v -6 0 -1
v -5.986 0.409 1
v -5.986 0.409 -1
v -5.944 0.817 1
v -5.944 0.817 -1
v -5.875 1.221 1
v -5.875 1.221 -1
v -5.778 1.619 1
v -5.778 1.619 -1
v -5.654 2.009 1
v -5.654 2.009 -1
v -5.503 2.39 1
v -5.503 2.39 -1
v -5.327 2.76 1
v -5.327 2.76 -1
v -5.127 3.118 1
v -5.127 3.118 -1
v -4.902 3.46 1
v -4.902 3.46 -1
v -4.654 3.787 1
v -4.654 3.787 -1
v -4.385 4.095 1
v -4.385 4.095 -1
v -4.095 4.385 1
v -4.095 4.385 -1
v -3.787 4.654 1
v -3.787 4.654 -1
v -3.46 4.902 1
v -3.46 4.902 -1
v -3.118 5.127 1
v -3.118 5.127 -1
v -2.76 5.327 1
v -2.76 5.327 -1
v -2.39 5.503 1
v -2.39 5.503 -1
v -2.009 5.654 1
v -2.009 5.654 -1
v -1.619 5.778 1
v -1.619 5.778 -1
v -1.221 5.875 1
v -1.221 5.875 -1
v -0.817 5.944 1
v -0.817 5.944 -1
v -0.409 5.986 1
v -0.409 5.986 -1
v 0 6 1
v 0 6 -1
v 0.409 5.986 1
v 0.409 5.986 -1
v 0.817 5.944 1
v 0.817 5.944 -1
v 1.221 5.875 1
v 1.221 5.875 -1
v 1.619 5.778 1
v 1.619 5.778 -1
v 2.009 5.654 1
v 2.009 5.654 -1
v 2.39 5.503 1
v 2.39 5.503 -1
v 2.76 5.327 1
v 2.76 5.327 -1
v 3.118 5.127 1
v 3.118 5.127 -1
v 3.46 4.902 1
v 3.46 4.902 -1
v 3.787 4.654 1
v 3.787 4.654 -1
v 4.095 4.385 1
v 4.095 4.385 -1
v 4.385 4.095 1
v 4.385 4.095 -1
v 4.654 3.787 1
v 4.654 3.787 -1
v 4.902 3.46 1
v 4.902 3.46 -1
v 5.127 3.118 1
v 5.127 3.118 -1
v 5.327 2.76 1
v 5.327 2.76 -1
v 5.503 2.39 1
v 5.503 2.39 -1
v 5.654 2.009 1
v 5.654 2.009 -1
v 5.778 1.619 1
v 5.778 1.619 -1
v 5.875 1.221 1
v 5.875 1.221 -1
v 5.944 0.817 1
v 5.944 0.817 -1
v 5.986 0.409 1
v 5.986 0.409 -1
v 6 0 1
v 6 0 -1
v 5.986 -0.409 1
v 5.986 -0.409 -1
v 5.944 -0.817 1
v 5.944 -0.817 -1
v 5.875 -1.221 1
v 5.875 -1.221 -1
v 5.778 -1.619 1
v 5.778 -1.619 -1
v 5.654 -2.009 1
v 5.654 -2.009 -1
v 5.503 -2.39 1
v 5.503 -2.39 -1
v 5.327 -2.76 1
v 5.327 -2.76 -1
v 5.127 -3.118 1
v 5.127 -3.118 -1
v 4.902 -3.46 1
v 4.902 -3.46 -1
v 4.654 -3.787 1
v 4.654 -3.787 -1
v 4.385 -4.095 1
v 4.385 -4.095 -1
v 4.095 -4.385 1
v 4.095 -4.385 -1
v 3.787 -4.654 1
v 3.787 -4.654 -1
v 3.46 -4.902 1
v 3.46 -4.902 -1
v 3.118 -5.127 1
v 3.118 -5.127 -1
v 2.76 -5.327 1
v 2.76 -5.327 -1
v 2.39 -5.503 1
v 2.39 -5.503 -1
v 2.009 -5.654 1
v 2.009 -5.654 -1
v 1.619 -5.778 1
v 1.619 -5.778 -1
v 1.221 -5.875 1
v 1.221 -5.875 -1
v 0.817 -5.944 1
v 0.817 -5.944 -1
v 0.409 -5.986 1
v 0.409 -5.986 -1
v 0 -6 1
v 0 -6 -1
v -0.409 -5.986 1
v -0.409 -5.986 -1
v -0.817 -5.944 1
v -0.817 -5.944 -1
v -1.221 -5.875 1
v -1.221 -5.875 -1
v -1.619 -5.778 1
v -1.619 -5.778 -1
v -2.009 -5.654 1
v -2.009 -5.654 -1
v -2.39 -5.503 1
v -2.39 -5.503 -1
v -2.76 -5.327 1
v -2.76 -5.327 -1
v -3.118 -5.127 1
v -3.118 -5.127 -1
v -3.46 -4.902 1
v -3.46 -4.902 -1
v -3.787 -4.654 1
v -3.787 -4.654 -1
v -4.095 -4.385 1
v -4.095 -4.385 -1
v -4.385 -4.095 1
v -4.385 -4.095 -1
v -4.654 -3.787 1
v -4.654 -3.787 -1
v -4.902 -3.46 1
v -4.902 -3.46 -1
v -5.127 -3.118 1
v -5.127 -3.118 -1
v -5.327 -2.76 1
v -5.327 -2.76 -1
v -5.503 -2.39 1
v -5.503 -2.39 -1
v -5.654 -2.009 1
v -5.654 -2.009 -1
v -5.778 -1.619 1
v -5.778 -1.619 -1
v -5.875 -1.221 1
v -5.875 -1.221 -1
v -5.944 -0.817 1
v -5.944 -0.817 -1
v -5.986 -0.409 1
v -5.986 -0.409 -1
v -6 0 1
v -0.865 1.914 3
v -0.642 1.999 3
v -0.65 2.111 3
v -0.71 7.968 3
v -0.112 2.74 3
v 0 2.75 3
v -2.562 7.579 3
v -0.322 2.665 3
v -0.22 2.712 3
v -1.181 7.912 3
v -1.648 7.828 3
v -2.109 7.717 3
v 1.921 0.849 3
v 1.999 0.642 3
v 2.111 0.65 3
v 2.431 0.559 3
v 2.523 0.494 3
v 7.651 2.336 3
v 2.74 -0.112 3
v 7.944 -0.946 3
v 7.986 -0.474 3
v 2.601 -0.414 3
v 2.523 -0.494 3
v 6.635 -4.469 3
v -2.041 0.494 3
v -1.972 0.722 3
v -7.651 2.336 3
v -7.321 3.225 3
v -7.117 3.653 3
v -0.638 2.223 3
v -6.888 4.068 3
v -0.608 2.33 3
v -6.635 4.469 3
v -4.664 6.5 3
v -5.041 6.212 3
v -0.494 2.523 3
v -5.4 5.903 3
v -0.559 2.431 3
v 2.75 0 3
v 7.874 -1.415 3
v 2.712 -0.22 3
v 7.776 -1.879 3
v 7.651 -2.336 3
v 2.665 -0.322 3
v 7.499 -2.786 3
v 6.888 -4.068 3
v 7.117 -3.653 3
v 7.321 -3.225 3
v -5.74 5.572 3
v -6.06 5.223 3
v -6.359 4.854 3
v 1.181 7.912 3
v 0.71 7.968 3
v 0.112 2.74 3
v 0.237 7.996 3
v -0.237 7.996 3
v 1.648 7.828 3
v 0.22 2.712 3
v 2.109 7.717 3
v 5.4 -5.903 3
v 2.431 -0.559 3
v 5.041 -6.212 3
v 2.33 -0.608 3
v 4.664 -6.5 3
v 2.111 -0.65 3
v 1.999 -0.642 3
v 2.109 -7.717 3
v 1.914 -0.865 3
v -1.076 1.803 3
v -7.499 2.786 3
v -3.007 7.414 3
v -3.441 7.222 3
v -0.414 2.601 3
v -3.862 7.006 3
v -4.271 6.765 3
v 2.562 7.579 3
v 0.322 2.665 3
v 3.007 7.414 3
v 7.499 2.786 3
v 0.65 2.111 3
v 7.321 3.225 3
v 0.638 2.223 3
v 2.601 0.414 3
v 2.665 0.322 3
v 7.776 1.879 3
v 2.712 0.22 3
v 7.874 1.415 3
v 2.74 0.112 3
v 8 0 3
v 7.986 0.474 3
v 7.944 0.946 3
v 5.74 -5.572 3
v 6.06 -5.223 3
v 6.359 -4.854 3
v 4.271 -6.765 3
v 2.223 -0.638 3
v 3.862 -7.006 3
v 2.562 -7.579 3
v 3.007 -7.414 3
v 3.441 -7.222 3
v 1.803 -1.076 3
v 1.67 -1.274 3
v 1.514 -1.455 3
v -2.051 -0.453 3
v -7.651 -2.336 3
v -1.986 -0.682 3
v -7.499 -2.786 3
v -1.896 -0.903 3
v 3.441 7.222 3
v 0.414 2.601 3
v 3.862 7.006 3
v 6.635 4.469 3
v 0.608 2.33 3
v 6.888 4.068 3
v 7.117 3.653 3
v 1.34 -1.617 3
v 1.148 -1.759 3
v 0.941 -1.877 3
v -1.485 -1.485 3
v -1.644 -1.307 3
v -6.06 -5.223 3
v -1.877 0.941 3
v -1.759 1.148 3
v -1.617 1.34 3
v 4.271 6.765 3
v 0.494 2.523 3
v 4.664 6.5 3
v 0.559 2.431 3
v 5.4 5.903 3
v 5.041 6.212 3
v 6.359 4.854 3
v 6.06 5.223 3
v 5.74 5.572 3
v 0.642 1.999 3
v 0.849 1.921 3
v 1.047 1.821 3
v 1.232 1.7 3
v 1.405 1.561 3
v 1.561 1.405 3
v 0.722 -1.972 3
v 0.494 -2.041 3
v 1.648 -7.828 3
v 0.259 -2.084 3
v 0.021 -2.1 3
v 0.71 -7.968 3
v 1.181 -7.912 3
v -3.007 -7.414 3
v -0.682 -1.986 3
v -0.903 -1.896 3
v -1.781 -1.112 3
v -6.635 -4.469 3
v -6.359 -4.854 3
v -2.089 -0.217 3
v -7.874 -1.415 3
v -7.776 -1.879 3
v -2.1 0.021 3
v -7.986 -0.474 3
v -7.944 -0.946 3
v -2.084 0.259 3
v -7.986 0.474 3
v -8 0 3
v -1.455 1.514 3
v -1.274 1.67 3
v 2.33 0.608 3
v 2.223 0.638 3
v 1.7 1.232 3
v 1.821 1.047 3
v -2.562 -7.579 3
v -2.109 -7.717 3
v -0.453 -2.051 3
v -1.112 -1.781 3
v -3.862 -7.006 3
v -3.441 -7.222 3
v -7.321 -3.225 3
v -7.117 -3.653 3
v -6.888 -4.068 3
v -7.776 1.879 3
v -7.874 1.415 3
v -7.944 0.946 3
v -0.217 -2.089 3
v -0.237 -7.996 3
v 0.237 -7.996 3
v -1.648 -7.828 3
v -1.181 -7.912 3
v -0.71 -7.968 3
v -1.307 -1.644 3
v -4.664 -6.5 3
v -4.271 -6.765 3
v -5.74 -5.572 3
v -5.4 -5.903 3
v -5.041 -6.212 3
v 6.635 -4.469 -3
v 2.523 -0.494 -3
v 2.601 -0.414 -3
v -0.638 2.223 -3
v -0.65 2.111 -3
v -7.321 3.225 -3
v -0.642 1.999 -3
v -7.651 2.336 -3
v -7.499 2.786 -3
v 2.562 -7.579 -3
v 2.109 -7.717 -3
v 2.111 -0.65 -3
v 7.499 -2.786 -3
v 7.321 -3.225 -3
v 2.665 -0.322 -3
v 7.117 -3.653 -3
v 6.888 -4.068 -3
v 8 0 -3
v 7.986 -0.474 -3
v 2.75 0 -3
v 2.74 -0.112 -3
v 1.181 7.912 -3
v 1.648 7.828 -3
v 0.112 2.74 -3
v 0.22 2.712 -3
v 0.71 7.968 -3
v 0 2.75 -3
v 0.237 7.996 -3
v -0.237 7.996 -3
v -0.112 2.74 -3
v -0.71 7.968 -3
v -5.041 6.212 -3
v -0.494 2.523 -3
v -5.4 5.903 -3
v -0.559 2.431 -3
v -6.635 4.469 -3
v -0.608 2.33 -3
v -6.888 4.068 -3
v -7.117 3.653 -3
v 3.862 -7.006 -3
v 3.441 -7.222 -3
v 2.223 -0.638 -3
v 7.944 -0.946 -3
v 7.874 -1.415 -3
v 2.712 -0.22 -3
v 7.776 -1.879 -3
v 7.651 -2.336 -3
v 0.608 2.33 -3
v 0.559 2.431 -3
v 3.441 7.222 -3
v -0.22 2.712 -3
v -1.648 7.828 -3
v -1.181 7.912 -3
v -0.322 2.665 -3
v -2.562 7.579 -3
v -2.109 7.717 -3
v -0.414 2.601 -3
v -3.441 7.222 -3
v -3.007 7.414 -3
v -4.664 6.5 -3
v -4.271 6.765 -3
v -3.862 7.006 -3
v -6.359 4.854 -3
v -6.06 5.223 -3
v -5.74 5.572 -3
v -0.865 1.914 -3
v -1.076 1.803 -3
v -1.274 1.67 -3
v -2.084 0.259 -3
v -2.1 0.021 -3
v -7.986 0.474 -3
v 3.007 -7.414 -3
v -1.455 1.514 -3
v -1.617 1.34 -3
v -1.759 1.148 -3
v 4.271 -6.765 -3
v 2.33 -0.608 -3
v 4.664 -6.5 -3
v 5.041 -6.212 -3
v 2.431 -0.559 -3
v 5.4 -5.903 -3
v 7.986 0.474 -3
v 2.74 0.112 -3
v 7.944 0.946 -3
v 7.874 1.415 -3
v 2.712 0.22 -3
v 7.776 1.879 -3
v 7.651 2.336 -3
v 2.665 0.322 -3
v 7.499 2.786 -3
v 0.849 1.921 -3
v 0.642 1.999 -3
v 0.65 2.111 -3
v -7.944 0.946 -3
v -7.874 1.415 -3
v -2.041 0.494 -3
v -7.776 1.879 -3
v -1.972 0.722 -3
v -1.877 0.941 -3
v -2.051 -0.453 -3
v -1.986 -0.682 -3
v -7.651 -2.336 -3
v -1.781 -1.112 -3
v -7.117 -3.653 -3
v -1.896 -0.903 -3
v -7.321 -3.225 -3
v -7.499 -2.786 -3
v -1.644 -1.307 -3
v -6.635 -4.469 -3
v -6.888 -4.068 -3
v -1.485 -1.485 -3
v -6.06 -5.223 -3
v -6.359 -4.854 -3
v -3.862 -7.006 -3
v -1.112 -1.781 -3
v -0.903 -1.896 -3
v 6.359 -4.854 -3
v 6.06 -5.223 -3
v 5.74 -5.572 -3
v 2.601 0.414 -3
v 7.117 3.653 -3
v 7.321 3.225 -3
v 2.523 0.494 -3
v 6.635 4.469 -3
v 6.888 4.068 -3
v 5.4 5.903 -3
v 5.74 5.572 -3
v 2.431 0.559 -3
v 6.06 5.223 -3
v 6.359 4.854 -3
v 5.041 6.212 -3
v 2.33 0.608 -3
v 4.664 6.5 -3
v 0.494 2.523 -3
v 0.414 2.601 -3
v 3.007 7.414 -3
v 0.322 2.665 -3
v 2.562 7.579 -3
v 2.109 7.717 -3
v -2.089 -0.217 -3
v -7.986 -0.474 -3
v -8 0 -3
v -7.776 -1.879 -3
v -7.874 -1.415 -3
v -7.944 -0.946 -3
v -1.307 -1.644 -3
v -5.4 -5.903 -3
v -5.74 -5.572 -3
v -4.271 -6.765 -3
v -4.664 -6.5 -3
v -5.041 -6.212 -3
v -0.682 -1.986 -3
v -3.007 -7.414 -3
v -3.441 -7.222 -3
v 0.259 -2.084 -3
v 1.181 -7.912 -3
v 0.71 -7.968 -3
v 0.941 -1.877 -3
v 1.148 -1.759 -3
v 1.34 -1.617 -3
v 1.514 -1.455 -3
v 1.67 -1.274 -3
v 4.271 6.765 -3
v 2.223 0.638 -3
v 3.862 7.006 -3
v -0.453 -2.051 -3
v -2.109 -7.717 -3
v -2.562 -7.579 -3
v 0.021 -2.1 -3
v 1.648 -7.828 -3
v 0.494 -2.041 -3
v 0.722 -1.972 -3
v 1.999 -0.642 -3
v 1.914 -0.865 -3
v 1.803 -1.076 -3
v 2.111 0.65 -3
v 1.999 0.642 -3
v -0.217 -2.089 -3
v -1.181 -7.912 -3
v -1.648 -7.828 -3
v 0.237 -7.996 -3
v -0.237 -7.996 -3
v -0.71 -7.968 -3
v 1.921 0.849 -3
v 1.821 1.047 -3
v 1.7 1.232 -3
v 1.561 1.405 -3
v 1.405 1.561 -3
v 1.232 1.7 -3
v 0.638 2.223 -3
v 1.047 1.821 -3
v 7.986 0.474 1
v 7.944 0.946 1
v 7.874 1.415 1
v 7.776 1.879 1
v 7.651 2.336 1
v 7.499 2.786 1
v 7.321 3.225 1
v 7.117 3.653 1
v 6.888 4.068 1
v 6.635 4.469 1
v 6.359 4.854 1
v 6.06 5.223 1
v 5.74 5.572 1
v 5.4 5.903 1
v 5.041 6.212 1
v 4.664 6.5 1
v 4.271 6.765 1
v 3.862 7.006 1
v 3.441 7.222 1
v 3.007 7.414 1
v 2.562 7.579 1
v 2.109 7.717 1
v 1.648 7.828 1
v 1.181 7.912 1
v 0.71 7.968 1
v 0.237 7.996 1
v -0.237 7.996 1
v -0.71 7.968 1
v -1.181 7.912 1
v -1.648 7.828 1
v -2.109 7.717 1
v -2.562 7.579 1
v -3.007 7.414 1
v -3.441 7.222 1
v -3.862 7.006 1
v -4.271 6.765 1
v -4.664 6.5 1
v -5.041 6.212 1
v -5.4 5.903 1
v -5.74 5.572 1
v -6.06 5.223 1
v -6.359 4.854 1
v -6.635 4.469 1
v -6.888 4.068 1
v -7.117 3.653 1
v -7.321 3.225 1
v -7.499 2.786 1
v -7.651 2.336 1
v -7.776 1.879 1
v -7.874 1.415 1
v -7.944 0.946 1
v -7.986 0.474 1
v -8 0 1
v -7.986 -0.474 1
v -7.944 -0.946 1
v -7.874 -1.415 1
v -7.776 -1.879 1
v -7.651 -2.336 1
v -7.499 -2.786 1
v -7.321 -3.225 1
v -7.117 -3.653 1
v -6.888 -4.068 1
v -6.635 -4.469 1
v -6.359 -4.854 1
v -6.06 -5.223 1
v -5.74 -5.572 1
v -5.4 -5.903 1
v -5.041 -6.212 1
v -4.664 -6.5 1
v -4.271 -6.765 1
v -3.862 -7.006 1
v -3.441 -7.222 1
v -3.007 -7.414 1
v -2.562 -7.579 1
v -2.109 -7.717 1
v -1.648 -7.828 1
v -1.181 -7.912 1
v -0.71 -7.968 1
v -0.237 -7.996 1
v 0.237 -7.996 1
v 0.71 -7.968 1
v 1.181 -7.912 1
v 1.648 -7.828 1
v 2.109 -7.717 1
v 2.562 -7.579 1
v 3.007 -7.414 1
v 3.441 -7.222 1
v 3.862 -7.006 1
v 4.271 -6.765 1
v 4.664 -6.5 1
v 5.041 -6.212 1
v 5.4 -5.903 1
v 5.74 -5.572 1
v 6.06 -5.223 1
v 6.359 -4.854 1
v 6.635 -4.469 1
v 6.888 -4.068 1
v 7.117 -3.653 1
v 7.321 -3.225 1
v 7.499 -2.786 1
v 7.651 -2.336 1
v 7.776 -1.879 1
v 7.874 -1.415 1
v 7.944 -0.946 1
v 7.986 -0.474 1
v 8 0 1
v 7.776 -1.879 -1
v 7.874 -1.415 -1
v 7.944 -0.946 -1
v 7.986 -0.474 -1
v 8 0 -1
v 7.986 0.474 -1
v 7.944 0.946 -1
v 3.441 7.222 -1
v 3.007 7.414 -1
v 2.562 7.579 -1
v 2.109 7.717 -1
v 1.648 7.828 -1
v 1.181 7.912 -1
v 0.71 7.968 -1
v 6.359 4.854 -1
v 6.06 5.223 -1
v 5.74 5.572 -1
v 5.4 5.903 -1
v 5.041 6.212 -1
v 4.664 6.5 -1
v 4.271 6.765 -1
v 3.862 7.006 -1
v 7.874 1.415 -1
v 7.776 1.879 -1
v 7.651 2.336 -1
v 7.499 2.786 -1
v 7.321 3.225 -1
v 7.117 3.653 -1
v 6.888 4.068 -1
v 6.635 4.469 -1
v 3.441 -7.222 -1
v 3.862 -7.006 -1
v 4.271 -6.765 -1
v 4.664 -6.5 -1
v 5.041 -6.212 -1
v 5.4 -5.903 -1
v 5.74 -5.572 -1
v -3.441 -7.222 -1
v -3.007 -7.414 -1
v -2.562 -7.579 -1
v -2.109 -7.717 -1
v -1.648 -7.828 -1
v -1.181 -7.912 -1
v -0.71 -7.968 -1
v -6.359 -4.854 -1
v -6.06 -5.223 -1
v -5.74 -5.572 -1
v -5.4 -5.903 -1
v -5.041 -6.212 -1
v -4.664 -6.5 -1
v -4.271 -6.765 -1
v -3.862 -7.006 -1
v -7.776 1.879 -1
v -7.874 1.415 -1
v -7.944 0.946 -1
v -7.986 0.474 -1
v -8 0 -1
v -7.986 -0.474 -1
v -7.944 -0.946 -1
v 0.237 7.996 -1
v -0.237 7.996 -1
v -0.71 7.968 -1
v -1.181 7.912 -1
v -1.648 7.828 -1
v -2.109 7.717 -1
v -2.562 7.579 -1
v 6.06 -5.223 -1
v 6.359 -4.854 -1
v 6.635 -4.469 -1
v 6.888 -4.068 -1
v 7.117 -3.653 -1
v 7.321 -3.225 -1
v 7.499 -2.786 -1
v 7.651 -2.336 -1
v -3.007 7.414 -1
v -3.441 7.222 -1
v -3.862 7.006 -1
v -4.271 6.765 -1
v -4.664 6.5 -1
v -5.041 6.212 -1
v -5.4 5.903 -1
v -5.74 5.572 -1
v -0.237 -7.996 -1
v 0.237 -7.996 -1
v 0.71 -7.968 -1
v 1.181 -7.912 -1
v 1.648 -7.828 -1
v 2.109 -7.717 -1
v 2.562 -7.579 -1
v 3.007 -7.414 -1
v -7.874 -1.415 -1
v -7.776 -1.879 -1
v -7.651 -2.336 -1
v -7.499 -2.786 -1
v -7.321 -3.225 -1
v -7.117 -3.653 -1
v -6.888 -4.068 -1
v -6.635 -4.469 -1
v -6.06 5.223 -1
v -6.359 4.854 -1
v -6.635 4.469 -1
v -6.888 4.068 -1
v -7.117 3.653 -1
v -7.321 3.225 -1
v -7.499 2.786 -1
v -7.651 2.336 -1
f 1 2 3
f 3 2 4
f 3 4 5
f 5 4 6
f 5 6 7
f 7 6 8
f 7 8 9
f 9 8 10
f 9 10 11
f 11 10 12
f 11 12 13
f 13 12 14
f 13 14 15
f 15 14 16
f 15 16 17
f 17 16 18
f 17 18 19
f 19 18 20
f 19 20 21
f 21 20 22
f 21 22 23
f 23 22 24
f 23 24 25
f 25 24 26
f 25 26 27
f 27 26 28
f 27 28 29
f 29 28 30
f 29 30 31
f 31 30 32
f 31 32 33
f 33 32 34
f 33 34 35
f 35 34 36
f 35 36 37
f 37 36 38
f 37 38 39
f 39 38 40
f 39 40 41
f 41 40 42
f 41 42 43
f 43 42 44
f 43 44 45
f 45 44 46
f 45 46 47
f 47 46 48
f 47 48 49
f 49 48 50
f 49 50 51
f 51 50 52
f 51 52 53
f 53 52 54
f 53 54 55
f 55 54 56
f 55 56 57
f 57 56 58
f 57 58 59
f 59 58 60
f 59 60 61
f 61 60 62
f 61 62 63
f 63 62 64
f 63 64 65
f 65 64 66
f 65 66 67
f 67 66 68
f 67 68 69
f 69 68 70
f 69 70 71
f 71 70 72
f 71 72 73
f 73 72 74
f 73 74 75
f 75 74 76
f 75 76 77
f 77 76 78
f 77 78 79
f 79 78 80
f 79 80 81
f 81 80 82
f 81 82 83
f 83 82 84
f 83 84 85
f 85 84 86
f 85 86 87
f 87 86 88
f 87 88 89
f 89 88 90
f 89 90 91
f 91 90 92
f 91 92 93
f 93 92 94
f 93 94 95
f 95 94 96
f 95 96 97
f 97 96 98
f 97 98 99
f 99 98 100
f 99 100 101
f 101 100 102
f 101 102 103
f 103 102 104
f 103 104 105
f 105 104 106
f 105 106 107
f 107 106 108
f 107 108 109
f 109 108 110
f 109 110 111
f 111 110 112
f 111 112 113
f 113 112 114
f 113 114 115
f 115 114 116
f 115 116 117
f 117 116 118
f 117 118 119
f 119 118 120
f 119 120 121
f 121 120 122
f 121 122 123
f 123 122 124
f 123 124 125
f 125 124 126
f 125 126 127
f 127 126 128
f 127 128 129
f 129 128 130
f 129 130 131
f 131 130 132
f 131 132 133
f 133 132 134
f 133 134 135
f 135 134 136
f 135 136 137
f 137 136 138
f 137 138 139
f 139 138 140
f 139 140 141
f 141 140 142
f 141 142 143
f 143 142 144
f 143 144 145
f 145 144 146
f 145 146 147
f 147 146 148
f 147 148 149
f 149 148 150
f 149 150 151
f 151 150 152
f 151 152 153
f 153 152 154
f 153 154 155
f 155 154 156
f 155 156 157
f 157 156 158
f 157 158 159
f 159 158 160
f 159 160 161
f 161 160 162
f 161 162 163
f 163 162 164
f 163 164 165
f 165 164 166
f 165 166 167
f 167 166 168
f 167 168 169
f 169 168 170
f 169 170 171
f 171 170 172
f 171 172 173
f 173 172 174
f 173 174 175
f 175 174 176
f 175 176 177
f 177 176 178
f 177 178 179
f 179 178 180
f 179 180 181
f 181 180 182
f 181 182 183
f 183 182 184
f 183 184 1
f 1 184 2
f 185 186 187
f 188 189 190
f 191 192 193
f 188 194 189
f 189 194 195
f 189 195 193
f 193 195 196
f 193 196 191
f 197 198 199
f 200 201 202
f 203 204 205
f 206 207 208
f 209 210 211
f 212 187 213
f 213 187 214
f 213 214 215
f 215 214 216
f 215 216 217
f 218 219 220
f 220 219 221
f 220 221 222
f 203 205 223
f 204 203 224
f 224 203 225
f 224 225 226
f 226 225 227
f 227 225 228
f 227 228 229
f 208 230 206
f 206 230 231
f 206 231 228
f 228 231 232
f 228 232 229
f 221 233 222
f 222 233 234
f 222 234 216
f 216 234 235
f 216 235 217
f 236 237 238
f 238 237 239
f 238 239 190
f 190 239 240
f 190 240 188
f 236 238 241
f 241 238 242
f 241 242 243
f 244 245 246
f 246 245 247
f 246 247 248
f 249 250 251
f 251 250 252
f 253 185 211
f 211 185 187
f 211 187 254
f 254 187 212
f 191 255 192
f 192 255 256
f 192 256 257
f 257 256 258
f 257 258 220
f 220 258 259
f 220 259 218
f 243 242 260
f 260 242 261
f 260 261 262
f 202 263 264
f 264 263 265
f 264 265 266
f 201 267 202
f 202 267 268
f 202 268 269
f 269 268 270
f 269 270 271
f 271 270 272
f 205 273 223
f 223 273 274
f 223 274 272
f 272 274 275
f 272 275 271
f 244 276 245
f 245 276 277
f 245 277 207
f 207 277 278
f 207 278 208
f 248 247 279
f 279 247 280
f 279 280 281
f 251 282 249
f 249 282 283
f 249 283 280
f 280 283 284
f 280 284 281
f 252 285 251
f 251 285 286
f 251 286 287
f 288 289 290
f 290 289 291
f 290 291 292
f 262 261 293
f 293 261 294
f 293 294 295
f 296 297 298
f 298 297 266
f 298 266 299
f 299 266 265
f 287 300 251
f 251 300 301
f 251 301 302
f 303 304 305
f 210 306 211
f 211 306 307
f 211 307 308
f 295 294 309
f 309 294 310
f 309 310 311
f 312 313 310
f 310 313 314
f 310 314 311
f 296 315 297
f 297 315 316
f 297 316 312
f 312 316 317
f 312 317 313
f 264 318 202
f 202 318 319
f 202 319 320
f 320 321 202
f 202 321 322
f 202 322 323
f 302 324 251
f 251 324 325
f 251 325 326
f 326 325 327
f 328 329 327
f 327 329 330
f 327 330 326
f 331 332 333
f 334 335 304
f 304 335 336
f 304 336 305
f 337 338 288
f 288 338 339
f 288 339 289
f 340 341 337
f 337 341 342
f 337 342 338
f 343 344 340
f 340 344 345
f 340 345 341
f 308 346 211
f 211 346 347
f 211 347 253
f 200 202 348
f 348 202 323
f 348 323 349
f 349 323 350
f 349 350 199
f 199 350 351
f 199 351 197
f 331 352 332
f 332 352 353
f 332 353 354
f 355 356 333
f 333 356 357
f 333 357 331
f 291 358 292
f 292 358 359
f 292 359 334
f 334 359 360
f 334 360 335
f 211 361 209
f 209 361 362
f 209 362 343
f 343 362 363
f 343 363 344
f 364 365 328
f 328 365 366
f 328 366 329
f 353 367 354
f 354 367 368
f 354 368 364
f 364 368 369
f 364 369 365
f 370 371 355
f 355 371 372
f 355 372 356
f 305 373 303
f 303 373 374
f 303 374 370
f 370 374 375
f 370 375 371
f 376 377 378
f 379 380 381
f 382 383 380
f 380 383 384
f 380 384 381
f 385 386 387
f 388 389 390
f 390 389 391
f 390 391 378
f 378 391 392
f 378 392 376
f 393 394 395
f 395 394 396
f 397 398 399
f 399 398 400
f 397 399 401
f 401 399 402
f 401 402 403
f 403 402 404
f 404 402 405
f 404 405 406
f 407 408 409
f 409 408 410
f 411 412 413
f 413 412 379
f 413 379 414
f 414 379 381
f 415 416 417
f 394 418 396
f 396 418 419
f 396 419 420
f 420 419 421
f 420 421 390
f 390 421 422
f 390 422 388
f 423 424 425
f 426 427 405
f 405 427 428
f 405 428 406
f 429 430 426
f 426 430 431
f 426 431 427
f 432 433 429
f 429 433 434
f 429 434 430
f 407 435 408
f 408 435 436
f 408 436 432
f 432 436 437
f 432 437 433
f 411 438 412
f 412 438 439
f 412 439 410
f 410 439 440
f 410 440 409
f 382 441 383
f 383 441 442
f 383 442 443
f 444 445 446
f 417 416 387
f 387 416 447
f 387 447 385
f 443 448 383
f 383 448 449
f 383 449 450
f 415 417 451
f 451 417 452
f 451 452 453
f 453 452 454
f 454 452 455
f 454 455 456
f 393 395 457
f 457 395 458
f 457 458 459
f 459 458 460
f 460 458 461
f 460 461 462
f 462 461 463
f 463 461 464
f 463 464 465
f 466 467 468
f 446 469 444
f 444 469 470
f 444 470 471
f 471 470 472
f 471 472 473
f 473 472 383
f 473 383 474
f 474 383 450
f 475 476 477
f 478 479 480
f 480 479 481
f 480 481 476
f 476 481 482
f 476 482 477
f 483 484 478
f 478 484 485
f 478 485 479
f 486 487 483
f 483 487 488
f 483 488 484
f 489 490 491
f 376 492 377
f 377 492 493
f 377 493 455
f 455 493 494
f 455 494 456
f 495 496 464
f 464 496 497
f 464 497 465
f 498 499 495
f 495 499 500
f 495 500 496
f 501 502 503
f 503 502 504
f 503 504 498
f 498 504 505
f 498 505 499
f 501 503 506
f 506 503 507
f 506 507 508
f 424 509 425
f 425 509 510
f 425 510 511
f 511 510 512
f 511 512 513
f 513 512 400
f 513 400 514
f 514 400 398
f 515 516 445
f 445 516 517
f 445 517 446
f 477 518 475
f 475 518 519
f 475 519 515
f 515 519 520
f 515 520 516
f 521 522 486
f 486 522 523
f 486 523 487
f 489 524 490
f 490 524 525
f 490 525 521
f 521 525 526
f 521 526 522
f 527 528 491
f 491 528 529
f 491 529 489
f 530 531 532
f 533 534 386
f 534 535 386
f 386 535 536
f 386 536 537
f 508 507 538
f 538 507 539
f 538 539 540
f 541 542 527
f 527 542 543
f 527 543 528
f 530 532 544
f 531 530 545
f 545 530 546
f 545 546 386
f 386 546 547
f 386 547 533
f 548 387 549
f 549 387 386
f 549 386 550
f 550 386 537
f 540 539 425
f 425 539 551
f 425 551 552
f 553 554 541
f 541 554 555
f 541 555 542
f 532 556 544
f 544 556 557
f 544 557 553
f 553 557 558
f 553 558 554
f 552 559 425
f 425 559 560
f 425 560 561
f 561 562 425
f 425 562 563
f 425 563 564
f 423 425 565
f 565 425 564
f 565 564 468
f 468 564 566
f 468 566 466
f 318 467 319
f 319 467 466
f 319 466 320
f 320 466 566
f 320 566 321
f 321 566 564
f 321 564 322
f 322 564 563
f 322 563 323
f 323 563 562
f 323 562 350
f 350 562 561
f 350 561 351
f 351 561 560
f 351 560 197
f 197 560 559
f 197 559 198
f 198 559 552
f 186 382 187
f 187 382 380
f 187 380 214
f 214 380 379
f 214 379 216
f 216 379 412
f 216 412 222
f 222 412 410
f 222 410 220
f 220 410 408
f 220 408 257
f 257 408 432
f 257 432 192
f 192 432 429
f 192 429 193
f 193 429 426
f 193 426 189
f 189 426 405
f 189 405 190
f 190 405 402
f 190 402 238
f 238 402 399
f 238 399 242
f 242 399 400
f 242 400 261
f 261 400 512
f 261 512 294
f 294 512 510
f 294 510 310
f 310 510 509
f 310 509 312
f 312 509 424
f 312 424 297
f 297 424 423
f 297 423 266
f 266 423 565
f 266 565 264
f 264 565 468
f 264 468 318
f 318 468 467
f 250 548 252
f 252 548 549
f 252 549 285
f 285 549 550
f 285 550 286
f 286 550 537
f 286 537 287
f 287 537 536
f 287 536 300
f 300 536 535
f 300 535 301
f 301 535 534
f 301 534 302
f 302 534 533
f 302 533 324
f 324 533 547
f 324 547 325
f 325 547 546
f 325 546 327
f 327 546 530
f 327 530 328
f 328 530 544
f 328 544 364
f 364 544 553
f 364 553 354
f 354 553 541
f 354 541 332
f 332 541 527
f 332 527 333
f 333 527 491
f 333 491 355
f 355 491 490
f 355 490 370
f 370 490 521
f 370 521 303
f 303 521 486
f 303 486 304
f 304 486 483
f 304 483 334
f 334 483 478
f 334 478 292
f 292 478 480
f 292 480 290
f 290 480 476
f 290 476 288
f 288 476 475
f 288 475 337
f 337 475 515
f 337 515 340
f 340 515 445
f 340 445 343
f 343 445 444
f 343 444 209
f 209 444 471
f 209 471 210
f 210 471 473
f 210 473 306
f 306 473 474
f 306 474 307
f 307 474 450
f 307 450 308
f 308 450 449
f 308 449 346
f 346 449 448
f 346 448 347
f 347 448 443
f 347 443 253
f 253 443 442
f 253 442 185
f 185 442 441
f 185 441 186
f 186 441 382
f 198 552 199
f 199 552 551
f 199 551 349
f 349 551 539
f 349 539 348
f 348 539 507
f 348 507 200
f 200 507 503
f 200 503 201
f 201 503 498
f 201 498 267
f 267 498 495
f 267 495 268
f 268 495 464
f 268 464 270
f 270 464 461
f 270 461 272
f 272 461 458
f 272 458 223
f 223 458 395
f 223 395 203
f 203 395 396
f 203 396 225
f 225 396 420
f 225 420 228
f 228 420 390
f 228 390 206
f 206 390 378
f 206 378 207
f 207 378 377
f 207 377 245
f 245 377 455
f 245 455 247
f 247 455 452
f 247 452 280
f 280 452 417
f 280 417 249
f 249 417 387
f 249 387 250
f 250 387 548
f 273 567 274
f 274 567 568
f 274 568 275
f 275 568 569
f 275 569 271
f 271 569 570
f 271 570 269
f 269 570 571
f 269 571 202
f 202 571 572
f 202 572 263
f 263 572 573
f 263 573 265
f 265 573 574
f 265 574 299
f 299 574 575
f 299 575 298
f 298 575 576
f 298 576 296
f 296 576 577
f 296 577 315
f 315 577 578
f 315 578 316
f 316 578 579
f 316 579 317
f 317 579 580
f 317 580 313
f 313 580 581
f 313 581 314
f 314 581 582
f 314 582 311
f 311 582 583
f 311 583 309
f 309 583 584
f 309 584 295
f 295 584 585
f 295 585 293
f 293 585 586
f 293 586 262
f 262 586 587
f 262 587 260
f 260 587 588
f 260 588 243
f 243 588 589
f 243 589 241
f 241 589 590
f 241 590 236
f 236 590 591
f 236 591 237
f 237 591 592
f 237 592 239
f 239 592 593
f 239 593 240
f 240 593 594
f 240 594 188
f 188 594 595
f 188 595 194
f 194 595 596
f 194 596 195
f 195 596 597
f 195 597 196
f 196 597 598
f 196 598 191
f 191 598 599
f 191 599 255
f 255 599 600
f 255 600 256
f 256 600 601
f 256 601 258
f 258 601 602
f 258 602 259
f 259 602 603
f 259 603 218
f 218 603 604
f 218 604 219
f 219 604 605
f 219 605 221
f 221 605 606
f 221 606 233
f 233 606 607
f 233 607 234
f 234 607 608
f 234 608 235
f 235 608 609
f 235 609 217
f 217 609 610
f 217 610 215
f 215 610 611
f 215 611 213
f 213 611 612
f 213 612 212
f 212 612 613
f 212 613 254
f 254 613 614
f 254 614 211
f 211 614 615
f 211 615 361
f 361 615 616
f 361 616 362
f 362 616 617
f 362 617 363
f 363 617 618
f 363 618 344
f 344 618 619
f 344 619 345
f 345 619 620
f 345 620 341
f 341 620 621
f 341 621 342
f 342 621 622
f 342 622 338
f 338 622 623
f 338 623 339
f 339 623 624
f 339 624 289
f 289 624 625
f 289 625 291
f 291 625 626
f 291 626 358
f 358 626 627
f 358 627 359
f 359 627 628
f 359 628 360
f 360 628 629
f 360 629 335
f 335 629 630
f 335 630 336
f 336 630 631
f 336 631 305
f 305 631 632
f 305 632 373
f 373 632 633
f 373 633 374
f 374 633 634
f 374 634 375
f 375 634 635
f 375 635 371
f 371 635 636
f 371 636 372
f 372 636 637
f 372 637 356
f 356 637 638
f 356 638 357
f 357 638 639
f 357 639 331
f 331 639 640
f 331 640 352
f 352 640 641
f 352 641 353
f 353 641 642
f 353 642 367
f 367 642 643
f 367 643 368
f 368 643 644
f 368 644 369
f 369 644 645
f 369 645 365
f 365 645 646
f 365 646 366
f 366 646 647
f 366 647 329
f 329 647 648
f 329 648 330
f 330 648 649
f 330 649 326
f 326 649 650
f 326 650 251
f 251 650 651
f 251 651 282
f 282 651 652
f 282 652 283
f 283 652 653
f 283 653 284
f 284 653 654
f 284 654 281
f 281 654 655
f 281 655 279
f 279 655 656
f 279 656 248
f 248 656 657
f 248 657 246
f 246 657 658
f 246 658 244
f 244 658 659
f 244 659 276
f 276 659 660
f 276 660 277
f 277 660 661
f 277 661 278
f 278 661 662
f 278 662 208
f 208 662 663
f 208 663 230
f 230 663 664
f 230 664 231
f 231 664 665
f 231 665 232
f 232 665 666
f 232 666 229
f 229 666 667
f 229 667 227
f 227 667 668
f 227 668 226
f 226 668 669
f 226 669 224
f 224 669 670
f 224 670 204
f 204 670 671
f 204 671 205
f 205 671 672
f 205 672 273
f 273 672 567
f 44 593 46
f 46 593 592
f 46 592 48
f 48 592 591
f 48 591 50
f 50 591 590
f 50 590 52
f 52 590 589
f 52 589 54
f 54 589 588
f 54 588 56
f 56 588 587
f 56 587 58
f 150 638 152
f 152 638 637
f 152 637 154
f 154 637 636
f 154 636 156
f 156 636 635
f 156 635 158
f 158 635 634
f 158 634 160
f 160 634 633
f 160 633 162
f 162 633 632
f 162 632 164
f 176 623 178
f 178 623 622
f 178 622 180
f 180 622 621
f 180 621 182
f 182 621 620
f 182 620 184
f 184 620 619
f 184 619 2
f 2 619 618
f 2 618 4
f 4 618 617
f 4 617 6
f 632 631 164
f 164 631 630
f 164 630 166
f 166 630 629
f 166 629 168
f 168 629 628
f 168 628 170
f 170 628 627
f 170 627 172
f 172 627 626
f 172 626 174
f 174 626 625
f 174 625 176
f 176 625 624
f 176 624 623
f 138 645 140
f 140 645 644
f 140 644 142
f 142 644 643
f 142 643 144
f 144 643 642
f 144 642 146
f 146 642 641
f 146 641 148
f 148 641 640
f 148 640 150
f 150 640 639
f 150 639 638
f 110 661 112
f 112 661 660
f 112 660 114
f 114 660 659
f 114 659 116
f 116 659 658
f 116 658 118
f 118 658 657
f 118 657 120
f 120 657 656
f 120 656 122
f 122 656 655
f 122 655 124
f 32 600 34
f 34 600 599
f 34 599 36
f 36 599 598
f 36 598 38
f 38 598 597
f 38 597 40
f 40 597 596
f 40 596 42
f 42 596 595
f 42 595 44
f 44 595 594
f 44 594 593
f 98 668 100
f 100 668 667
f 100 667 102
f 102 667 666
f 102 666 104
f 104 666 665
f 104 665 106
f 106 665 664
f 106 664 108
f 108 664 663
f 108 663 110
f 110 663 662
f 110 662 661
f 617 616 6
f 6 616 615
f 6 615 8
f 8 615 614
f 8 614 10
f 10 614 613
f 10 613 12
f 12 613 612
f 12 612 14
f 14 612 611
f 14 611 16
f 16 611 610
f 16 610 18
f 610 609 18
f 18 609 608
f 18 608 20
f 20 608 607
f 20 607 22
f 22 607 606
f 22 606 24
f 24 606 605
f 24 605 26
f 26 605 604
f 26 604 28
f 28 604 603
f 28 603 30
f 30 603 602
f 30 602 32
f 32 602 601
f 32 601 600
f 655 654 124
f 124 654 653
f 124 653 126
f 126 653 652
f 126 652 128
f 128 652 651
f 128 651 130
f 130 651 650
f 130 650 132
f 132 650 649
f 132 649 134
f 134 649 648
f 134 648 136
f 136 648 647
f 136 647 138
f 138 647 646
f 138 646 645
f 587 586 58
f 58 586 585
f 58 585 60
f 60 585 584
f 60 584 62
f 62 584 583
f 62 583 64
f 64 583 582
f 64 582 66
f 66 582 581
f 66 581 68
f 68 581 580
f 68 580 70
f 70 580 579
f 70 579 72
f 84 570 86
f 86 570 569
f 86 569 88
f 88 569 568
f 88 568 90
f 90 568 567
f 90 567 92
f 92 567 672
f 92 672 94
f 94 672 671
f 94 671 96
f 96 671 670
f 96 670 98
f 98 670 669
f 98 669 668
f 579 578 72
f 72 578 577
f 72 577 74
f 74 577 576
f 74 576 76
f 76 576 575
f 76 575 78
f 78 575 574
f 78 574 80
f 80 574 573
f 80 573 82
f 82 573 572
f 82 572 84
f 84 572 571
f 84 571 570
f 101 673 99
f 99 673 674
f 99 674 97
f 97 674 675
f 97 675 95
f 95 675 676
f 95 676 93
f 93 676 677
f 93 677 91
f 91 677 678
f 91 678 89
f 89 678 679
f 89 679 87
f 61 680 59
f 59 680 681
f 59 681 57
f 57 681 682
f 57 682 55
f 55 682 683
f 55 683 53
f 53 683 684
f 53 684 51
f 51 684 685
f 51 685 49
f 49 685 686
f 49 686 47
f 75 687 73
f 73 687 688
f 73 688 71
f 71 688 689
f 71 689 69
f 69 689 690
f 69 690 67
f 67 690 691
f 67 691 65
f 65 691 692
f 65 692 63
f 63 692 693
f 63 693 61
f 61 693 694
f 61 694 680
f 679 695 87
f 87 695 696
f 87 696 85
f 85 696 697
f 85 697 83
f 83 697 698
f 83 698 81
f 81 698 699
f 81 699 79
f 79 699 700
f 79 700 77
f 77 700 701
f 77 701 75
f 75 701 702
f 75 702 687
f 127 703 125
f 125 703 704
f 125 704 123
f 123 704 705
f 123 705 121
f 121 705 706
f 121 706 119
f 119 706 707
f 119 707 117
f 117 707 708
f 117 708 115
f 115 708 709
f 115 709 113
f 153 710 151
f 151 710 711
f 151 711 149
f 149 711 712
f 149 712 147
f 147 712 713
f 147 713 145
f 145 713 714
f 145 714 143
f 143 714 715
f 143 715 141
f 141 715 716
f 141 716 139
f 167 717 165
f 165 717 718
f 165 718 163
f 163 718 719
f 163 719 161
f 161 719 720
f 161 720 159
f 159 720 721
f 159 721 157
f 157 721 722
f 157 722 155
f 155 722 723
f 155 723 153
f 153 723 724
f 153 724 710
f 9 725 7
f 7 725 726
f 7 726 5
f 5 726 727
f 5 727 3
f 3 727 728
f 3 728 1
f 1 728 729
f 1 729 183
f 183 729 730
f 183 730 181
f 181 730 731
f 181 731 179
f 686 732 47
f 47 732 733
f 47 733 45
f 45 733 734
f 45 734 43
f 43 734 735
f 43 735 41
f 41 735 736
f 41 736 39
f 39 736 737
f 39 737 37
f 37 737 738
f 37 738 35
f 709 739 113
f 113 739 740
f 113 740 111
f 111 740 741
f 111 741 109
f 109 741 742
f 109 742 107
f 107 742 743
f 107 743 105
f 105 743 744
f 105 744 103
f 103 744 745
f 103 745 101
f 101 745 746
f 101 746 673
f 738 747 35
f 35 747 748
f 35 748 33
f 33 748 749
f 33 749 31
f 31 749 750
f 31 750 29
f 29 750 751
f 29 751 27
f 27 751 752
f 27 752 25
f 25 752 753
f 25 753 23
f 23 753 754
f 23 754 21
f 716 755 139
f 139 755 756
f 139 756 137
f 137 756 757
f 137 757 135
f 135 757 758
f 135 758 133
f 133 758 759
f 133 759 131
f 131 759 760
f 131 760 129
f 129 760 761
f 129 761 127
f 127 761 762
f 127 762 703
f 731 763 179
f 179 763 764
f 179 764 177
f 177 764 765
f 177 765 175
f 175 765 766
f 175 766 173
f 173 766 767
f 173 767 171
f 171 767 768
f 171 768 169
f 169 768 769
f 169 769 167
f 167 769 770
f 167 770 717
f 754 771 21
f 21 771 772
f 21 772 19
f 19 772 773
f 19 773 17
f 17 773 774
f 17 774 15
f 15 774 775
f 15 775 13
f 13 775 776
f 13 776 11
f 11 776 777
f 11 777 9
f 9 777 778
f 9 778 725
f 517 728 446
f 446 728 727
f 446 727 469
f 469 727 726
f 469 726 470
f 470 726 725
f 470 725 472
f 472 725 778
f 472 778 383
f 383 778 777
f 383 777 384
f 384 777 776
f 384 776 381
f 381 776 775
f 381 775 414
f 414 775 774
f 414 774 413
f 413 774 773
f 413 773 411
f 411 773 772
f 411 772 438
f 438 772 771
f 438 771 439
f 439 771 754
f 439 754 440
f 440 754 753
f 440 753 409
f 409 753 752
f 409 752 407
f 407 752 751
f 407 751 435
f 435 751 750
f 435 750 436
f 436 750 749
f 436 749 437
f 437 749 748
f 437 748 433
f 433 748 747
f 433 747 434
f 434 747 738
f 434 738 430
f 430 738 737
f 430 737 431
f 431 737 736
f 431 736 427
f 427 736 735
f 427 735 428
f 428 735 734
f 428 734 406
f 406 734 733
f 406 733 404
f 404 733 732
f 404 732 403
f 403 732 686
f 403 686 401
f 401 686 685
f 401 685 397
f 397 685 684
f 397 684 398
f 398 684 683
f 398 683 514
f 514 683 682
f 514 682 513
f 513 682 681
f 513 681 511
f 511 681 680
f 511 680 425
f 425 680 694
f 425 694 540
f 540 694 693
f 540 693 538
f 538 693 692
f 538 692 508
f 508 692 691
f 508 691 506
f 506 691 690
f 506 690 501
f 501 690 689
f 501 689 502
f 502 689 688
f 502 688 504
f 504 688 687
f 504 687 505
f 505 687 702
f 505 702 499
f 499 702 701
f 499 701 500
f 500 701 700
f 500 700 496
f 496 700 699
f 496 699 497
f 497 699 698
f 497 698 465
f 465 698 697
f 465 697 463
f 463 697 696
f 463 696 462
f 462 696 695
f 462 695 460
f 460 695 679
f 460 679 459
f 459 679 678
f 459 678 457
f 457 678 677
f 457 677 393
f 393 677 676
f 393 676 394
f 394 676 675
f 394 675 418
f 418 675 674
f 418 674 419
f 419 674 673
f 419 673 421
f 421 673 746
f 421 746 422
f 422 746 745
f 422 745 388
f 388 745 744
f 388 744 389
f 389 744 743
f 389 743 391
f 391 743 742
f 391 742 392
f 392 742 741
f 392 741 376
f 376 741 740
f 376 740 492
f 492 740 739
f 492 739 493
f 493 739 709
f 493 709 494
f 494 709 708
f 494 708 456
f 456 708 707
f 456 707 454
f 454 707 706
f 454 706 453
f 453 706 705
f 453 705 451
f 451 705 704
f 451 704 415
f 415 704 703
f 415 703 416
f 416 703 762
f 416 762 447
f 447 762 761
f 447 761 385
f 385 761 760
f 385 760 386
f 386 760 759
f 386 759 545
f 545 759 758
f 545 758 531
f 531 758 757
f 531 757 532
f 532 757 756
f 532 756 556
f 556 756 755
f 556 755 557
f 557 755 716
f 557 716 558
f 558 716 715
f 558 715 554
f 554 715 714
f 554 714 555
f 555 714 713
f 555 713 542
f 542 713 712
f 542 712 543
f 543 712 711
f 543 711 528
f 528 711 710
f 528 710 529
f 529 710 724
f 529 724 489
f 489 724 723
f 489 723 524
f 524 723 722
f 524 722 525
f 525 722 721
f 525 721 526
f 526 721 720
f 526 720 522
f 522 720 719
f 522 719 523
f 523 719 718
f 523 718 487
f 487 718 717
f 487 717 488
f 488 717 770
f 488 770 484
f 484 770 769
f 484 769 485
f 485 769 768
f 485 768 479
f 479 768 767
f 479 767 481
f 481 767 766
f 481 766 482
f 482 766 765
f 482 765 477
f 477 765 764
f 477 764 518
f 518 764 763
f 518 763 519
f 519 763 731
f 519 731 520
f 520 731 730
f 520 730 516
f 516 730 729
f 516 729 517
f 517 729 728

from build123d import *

# Parameters (mm, degrees)
ESQUISSE1_R        = 6
BOSS_EXTRU_1_DEPTH = 3
ESQUISSE2_R        = 8
ESQUISSE2_R_2      = 6
BOSS_EXTRU_2_DEPTH = 2


with BuildPart() as part:
    # Esquisse1 → Boss.-Extru.1 (new, symmetric)
    with BuildSketch(Plane.XY):
        Circle(ESQUISSE1_R)
        with BuildLine():
            ThreePointArc((-0.642168668, 1.999404762), (-1.48492424, -1.48492424), (1.999404762, -0.642168668))
            ThreePointArc((1.999404762, -0.642168668), (2.75, 0), (1.999404762, 0.642168668))
            ThreePointArc((1.999404762, 0.642168668), (1.48492424, 1.48492424), (0.642168668, 1.999404762))
            ThreePointArc((0.642168668, 1.999404762), (0, 2.75), (-0.642168668, 1.999404762))
        make_face(mode=Mode.SUBTRACT)
    extrude(amount=BOSS_EXTRU_1_DEPTH, both=True)

    # Esquisse2 → Boss.-Extru.2 (add)
    with BuildSketch(Plane.XY.offset(3)):
        Circle(ESQUISSE2_R)
        Circle(ESQUISSE2_R_2, mode=Mode.SUBTRACT)
    boss_extru_2 = extrude(amount=-BOSS_EXTRU_2_DEPTH)

    # Symétrie1: Boss.-Extru.2 across plane
    add(boss_extru_2.mirror(Plane.XY))


solid = part.part
